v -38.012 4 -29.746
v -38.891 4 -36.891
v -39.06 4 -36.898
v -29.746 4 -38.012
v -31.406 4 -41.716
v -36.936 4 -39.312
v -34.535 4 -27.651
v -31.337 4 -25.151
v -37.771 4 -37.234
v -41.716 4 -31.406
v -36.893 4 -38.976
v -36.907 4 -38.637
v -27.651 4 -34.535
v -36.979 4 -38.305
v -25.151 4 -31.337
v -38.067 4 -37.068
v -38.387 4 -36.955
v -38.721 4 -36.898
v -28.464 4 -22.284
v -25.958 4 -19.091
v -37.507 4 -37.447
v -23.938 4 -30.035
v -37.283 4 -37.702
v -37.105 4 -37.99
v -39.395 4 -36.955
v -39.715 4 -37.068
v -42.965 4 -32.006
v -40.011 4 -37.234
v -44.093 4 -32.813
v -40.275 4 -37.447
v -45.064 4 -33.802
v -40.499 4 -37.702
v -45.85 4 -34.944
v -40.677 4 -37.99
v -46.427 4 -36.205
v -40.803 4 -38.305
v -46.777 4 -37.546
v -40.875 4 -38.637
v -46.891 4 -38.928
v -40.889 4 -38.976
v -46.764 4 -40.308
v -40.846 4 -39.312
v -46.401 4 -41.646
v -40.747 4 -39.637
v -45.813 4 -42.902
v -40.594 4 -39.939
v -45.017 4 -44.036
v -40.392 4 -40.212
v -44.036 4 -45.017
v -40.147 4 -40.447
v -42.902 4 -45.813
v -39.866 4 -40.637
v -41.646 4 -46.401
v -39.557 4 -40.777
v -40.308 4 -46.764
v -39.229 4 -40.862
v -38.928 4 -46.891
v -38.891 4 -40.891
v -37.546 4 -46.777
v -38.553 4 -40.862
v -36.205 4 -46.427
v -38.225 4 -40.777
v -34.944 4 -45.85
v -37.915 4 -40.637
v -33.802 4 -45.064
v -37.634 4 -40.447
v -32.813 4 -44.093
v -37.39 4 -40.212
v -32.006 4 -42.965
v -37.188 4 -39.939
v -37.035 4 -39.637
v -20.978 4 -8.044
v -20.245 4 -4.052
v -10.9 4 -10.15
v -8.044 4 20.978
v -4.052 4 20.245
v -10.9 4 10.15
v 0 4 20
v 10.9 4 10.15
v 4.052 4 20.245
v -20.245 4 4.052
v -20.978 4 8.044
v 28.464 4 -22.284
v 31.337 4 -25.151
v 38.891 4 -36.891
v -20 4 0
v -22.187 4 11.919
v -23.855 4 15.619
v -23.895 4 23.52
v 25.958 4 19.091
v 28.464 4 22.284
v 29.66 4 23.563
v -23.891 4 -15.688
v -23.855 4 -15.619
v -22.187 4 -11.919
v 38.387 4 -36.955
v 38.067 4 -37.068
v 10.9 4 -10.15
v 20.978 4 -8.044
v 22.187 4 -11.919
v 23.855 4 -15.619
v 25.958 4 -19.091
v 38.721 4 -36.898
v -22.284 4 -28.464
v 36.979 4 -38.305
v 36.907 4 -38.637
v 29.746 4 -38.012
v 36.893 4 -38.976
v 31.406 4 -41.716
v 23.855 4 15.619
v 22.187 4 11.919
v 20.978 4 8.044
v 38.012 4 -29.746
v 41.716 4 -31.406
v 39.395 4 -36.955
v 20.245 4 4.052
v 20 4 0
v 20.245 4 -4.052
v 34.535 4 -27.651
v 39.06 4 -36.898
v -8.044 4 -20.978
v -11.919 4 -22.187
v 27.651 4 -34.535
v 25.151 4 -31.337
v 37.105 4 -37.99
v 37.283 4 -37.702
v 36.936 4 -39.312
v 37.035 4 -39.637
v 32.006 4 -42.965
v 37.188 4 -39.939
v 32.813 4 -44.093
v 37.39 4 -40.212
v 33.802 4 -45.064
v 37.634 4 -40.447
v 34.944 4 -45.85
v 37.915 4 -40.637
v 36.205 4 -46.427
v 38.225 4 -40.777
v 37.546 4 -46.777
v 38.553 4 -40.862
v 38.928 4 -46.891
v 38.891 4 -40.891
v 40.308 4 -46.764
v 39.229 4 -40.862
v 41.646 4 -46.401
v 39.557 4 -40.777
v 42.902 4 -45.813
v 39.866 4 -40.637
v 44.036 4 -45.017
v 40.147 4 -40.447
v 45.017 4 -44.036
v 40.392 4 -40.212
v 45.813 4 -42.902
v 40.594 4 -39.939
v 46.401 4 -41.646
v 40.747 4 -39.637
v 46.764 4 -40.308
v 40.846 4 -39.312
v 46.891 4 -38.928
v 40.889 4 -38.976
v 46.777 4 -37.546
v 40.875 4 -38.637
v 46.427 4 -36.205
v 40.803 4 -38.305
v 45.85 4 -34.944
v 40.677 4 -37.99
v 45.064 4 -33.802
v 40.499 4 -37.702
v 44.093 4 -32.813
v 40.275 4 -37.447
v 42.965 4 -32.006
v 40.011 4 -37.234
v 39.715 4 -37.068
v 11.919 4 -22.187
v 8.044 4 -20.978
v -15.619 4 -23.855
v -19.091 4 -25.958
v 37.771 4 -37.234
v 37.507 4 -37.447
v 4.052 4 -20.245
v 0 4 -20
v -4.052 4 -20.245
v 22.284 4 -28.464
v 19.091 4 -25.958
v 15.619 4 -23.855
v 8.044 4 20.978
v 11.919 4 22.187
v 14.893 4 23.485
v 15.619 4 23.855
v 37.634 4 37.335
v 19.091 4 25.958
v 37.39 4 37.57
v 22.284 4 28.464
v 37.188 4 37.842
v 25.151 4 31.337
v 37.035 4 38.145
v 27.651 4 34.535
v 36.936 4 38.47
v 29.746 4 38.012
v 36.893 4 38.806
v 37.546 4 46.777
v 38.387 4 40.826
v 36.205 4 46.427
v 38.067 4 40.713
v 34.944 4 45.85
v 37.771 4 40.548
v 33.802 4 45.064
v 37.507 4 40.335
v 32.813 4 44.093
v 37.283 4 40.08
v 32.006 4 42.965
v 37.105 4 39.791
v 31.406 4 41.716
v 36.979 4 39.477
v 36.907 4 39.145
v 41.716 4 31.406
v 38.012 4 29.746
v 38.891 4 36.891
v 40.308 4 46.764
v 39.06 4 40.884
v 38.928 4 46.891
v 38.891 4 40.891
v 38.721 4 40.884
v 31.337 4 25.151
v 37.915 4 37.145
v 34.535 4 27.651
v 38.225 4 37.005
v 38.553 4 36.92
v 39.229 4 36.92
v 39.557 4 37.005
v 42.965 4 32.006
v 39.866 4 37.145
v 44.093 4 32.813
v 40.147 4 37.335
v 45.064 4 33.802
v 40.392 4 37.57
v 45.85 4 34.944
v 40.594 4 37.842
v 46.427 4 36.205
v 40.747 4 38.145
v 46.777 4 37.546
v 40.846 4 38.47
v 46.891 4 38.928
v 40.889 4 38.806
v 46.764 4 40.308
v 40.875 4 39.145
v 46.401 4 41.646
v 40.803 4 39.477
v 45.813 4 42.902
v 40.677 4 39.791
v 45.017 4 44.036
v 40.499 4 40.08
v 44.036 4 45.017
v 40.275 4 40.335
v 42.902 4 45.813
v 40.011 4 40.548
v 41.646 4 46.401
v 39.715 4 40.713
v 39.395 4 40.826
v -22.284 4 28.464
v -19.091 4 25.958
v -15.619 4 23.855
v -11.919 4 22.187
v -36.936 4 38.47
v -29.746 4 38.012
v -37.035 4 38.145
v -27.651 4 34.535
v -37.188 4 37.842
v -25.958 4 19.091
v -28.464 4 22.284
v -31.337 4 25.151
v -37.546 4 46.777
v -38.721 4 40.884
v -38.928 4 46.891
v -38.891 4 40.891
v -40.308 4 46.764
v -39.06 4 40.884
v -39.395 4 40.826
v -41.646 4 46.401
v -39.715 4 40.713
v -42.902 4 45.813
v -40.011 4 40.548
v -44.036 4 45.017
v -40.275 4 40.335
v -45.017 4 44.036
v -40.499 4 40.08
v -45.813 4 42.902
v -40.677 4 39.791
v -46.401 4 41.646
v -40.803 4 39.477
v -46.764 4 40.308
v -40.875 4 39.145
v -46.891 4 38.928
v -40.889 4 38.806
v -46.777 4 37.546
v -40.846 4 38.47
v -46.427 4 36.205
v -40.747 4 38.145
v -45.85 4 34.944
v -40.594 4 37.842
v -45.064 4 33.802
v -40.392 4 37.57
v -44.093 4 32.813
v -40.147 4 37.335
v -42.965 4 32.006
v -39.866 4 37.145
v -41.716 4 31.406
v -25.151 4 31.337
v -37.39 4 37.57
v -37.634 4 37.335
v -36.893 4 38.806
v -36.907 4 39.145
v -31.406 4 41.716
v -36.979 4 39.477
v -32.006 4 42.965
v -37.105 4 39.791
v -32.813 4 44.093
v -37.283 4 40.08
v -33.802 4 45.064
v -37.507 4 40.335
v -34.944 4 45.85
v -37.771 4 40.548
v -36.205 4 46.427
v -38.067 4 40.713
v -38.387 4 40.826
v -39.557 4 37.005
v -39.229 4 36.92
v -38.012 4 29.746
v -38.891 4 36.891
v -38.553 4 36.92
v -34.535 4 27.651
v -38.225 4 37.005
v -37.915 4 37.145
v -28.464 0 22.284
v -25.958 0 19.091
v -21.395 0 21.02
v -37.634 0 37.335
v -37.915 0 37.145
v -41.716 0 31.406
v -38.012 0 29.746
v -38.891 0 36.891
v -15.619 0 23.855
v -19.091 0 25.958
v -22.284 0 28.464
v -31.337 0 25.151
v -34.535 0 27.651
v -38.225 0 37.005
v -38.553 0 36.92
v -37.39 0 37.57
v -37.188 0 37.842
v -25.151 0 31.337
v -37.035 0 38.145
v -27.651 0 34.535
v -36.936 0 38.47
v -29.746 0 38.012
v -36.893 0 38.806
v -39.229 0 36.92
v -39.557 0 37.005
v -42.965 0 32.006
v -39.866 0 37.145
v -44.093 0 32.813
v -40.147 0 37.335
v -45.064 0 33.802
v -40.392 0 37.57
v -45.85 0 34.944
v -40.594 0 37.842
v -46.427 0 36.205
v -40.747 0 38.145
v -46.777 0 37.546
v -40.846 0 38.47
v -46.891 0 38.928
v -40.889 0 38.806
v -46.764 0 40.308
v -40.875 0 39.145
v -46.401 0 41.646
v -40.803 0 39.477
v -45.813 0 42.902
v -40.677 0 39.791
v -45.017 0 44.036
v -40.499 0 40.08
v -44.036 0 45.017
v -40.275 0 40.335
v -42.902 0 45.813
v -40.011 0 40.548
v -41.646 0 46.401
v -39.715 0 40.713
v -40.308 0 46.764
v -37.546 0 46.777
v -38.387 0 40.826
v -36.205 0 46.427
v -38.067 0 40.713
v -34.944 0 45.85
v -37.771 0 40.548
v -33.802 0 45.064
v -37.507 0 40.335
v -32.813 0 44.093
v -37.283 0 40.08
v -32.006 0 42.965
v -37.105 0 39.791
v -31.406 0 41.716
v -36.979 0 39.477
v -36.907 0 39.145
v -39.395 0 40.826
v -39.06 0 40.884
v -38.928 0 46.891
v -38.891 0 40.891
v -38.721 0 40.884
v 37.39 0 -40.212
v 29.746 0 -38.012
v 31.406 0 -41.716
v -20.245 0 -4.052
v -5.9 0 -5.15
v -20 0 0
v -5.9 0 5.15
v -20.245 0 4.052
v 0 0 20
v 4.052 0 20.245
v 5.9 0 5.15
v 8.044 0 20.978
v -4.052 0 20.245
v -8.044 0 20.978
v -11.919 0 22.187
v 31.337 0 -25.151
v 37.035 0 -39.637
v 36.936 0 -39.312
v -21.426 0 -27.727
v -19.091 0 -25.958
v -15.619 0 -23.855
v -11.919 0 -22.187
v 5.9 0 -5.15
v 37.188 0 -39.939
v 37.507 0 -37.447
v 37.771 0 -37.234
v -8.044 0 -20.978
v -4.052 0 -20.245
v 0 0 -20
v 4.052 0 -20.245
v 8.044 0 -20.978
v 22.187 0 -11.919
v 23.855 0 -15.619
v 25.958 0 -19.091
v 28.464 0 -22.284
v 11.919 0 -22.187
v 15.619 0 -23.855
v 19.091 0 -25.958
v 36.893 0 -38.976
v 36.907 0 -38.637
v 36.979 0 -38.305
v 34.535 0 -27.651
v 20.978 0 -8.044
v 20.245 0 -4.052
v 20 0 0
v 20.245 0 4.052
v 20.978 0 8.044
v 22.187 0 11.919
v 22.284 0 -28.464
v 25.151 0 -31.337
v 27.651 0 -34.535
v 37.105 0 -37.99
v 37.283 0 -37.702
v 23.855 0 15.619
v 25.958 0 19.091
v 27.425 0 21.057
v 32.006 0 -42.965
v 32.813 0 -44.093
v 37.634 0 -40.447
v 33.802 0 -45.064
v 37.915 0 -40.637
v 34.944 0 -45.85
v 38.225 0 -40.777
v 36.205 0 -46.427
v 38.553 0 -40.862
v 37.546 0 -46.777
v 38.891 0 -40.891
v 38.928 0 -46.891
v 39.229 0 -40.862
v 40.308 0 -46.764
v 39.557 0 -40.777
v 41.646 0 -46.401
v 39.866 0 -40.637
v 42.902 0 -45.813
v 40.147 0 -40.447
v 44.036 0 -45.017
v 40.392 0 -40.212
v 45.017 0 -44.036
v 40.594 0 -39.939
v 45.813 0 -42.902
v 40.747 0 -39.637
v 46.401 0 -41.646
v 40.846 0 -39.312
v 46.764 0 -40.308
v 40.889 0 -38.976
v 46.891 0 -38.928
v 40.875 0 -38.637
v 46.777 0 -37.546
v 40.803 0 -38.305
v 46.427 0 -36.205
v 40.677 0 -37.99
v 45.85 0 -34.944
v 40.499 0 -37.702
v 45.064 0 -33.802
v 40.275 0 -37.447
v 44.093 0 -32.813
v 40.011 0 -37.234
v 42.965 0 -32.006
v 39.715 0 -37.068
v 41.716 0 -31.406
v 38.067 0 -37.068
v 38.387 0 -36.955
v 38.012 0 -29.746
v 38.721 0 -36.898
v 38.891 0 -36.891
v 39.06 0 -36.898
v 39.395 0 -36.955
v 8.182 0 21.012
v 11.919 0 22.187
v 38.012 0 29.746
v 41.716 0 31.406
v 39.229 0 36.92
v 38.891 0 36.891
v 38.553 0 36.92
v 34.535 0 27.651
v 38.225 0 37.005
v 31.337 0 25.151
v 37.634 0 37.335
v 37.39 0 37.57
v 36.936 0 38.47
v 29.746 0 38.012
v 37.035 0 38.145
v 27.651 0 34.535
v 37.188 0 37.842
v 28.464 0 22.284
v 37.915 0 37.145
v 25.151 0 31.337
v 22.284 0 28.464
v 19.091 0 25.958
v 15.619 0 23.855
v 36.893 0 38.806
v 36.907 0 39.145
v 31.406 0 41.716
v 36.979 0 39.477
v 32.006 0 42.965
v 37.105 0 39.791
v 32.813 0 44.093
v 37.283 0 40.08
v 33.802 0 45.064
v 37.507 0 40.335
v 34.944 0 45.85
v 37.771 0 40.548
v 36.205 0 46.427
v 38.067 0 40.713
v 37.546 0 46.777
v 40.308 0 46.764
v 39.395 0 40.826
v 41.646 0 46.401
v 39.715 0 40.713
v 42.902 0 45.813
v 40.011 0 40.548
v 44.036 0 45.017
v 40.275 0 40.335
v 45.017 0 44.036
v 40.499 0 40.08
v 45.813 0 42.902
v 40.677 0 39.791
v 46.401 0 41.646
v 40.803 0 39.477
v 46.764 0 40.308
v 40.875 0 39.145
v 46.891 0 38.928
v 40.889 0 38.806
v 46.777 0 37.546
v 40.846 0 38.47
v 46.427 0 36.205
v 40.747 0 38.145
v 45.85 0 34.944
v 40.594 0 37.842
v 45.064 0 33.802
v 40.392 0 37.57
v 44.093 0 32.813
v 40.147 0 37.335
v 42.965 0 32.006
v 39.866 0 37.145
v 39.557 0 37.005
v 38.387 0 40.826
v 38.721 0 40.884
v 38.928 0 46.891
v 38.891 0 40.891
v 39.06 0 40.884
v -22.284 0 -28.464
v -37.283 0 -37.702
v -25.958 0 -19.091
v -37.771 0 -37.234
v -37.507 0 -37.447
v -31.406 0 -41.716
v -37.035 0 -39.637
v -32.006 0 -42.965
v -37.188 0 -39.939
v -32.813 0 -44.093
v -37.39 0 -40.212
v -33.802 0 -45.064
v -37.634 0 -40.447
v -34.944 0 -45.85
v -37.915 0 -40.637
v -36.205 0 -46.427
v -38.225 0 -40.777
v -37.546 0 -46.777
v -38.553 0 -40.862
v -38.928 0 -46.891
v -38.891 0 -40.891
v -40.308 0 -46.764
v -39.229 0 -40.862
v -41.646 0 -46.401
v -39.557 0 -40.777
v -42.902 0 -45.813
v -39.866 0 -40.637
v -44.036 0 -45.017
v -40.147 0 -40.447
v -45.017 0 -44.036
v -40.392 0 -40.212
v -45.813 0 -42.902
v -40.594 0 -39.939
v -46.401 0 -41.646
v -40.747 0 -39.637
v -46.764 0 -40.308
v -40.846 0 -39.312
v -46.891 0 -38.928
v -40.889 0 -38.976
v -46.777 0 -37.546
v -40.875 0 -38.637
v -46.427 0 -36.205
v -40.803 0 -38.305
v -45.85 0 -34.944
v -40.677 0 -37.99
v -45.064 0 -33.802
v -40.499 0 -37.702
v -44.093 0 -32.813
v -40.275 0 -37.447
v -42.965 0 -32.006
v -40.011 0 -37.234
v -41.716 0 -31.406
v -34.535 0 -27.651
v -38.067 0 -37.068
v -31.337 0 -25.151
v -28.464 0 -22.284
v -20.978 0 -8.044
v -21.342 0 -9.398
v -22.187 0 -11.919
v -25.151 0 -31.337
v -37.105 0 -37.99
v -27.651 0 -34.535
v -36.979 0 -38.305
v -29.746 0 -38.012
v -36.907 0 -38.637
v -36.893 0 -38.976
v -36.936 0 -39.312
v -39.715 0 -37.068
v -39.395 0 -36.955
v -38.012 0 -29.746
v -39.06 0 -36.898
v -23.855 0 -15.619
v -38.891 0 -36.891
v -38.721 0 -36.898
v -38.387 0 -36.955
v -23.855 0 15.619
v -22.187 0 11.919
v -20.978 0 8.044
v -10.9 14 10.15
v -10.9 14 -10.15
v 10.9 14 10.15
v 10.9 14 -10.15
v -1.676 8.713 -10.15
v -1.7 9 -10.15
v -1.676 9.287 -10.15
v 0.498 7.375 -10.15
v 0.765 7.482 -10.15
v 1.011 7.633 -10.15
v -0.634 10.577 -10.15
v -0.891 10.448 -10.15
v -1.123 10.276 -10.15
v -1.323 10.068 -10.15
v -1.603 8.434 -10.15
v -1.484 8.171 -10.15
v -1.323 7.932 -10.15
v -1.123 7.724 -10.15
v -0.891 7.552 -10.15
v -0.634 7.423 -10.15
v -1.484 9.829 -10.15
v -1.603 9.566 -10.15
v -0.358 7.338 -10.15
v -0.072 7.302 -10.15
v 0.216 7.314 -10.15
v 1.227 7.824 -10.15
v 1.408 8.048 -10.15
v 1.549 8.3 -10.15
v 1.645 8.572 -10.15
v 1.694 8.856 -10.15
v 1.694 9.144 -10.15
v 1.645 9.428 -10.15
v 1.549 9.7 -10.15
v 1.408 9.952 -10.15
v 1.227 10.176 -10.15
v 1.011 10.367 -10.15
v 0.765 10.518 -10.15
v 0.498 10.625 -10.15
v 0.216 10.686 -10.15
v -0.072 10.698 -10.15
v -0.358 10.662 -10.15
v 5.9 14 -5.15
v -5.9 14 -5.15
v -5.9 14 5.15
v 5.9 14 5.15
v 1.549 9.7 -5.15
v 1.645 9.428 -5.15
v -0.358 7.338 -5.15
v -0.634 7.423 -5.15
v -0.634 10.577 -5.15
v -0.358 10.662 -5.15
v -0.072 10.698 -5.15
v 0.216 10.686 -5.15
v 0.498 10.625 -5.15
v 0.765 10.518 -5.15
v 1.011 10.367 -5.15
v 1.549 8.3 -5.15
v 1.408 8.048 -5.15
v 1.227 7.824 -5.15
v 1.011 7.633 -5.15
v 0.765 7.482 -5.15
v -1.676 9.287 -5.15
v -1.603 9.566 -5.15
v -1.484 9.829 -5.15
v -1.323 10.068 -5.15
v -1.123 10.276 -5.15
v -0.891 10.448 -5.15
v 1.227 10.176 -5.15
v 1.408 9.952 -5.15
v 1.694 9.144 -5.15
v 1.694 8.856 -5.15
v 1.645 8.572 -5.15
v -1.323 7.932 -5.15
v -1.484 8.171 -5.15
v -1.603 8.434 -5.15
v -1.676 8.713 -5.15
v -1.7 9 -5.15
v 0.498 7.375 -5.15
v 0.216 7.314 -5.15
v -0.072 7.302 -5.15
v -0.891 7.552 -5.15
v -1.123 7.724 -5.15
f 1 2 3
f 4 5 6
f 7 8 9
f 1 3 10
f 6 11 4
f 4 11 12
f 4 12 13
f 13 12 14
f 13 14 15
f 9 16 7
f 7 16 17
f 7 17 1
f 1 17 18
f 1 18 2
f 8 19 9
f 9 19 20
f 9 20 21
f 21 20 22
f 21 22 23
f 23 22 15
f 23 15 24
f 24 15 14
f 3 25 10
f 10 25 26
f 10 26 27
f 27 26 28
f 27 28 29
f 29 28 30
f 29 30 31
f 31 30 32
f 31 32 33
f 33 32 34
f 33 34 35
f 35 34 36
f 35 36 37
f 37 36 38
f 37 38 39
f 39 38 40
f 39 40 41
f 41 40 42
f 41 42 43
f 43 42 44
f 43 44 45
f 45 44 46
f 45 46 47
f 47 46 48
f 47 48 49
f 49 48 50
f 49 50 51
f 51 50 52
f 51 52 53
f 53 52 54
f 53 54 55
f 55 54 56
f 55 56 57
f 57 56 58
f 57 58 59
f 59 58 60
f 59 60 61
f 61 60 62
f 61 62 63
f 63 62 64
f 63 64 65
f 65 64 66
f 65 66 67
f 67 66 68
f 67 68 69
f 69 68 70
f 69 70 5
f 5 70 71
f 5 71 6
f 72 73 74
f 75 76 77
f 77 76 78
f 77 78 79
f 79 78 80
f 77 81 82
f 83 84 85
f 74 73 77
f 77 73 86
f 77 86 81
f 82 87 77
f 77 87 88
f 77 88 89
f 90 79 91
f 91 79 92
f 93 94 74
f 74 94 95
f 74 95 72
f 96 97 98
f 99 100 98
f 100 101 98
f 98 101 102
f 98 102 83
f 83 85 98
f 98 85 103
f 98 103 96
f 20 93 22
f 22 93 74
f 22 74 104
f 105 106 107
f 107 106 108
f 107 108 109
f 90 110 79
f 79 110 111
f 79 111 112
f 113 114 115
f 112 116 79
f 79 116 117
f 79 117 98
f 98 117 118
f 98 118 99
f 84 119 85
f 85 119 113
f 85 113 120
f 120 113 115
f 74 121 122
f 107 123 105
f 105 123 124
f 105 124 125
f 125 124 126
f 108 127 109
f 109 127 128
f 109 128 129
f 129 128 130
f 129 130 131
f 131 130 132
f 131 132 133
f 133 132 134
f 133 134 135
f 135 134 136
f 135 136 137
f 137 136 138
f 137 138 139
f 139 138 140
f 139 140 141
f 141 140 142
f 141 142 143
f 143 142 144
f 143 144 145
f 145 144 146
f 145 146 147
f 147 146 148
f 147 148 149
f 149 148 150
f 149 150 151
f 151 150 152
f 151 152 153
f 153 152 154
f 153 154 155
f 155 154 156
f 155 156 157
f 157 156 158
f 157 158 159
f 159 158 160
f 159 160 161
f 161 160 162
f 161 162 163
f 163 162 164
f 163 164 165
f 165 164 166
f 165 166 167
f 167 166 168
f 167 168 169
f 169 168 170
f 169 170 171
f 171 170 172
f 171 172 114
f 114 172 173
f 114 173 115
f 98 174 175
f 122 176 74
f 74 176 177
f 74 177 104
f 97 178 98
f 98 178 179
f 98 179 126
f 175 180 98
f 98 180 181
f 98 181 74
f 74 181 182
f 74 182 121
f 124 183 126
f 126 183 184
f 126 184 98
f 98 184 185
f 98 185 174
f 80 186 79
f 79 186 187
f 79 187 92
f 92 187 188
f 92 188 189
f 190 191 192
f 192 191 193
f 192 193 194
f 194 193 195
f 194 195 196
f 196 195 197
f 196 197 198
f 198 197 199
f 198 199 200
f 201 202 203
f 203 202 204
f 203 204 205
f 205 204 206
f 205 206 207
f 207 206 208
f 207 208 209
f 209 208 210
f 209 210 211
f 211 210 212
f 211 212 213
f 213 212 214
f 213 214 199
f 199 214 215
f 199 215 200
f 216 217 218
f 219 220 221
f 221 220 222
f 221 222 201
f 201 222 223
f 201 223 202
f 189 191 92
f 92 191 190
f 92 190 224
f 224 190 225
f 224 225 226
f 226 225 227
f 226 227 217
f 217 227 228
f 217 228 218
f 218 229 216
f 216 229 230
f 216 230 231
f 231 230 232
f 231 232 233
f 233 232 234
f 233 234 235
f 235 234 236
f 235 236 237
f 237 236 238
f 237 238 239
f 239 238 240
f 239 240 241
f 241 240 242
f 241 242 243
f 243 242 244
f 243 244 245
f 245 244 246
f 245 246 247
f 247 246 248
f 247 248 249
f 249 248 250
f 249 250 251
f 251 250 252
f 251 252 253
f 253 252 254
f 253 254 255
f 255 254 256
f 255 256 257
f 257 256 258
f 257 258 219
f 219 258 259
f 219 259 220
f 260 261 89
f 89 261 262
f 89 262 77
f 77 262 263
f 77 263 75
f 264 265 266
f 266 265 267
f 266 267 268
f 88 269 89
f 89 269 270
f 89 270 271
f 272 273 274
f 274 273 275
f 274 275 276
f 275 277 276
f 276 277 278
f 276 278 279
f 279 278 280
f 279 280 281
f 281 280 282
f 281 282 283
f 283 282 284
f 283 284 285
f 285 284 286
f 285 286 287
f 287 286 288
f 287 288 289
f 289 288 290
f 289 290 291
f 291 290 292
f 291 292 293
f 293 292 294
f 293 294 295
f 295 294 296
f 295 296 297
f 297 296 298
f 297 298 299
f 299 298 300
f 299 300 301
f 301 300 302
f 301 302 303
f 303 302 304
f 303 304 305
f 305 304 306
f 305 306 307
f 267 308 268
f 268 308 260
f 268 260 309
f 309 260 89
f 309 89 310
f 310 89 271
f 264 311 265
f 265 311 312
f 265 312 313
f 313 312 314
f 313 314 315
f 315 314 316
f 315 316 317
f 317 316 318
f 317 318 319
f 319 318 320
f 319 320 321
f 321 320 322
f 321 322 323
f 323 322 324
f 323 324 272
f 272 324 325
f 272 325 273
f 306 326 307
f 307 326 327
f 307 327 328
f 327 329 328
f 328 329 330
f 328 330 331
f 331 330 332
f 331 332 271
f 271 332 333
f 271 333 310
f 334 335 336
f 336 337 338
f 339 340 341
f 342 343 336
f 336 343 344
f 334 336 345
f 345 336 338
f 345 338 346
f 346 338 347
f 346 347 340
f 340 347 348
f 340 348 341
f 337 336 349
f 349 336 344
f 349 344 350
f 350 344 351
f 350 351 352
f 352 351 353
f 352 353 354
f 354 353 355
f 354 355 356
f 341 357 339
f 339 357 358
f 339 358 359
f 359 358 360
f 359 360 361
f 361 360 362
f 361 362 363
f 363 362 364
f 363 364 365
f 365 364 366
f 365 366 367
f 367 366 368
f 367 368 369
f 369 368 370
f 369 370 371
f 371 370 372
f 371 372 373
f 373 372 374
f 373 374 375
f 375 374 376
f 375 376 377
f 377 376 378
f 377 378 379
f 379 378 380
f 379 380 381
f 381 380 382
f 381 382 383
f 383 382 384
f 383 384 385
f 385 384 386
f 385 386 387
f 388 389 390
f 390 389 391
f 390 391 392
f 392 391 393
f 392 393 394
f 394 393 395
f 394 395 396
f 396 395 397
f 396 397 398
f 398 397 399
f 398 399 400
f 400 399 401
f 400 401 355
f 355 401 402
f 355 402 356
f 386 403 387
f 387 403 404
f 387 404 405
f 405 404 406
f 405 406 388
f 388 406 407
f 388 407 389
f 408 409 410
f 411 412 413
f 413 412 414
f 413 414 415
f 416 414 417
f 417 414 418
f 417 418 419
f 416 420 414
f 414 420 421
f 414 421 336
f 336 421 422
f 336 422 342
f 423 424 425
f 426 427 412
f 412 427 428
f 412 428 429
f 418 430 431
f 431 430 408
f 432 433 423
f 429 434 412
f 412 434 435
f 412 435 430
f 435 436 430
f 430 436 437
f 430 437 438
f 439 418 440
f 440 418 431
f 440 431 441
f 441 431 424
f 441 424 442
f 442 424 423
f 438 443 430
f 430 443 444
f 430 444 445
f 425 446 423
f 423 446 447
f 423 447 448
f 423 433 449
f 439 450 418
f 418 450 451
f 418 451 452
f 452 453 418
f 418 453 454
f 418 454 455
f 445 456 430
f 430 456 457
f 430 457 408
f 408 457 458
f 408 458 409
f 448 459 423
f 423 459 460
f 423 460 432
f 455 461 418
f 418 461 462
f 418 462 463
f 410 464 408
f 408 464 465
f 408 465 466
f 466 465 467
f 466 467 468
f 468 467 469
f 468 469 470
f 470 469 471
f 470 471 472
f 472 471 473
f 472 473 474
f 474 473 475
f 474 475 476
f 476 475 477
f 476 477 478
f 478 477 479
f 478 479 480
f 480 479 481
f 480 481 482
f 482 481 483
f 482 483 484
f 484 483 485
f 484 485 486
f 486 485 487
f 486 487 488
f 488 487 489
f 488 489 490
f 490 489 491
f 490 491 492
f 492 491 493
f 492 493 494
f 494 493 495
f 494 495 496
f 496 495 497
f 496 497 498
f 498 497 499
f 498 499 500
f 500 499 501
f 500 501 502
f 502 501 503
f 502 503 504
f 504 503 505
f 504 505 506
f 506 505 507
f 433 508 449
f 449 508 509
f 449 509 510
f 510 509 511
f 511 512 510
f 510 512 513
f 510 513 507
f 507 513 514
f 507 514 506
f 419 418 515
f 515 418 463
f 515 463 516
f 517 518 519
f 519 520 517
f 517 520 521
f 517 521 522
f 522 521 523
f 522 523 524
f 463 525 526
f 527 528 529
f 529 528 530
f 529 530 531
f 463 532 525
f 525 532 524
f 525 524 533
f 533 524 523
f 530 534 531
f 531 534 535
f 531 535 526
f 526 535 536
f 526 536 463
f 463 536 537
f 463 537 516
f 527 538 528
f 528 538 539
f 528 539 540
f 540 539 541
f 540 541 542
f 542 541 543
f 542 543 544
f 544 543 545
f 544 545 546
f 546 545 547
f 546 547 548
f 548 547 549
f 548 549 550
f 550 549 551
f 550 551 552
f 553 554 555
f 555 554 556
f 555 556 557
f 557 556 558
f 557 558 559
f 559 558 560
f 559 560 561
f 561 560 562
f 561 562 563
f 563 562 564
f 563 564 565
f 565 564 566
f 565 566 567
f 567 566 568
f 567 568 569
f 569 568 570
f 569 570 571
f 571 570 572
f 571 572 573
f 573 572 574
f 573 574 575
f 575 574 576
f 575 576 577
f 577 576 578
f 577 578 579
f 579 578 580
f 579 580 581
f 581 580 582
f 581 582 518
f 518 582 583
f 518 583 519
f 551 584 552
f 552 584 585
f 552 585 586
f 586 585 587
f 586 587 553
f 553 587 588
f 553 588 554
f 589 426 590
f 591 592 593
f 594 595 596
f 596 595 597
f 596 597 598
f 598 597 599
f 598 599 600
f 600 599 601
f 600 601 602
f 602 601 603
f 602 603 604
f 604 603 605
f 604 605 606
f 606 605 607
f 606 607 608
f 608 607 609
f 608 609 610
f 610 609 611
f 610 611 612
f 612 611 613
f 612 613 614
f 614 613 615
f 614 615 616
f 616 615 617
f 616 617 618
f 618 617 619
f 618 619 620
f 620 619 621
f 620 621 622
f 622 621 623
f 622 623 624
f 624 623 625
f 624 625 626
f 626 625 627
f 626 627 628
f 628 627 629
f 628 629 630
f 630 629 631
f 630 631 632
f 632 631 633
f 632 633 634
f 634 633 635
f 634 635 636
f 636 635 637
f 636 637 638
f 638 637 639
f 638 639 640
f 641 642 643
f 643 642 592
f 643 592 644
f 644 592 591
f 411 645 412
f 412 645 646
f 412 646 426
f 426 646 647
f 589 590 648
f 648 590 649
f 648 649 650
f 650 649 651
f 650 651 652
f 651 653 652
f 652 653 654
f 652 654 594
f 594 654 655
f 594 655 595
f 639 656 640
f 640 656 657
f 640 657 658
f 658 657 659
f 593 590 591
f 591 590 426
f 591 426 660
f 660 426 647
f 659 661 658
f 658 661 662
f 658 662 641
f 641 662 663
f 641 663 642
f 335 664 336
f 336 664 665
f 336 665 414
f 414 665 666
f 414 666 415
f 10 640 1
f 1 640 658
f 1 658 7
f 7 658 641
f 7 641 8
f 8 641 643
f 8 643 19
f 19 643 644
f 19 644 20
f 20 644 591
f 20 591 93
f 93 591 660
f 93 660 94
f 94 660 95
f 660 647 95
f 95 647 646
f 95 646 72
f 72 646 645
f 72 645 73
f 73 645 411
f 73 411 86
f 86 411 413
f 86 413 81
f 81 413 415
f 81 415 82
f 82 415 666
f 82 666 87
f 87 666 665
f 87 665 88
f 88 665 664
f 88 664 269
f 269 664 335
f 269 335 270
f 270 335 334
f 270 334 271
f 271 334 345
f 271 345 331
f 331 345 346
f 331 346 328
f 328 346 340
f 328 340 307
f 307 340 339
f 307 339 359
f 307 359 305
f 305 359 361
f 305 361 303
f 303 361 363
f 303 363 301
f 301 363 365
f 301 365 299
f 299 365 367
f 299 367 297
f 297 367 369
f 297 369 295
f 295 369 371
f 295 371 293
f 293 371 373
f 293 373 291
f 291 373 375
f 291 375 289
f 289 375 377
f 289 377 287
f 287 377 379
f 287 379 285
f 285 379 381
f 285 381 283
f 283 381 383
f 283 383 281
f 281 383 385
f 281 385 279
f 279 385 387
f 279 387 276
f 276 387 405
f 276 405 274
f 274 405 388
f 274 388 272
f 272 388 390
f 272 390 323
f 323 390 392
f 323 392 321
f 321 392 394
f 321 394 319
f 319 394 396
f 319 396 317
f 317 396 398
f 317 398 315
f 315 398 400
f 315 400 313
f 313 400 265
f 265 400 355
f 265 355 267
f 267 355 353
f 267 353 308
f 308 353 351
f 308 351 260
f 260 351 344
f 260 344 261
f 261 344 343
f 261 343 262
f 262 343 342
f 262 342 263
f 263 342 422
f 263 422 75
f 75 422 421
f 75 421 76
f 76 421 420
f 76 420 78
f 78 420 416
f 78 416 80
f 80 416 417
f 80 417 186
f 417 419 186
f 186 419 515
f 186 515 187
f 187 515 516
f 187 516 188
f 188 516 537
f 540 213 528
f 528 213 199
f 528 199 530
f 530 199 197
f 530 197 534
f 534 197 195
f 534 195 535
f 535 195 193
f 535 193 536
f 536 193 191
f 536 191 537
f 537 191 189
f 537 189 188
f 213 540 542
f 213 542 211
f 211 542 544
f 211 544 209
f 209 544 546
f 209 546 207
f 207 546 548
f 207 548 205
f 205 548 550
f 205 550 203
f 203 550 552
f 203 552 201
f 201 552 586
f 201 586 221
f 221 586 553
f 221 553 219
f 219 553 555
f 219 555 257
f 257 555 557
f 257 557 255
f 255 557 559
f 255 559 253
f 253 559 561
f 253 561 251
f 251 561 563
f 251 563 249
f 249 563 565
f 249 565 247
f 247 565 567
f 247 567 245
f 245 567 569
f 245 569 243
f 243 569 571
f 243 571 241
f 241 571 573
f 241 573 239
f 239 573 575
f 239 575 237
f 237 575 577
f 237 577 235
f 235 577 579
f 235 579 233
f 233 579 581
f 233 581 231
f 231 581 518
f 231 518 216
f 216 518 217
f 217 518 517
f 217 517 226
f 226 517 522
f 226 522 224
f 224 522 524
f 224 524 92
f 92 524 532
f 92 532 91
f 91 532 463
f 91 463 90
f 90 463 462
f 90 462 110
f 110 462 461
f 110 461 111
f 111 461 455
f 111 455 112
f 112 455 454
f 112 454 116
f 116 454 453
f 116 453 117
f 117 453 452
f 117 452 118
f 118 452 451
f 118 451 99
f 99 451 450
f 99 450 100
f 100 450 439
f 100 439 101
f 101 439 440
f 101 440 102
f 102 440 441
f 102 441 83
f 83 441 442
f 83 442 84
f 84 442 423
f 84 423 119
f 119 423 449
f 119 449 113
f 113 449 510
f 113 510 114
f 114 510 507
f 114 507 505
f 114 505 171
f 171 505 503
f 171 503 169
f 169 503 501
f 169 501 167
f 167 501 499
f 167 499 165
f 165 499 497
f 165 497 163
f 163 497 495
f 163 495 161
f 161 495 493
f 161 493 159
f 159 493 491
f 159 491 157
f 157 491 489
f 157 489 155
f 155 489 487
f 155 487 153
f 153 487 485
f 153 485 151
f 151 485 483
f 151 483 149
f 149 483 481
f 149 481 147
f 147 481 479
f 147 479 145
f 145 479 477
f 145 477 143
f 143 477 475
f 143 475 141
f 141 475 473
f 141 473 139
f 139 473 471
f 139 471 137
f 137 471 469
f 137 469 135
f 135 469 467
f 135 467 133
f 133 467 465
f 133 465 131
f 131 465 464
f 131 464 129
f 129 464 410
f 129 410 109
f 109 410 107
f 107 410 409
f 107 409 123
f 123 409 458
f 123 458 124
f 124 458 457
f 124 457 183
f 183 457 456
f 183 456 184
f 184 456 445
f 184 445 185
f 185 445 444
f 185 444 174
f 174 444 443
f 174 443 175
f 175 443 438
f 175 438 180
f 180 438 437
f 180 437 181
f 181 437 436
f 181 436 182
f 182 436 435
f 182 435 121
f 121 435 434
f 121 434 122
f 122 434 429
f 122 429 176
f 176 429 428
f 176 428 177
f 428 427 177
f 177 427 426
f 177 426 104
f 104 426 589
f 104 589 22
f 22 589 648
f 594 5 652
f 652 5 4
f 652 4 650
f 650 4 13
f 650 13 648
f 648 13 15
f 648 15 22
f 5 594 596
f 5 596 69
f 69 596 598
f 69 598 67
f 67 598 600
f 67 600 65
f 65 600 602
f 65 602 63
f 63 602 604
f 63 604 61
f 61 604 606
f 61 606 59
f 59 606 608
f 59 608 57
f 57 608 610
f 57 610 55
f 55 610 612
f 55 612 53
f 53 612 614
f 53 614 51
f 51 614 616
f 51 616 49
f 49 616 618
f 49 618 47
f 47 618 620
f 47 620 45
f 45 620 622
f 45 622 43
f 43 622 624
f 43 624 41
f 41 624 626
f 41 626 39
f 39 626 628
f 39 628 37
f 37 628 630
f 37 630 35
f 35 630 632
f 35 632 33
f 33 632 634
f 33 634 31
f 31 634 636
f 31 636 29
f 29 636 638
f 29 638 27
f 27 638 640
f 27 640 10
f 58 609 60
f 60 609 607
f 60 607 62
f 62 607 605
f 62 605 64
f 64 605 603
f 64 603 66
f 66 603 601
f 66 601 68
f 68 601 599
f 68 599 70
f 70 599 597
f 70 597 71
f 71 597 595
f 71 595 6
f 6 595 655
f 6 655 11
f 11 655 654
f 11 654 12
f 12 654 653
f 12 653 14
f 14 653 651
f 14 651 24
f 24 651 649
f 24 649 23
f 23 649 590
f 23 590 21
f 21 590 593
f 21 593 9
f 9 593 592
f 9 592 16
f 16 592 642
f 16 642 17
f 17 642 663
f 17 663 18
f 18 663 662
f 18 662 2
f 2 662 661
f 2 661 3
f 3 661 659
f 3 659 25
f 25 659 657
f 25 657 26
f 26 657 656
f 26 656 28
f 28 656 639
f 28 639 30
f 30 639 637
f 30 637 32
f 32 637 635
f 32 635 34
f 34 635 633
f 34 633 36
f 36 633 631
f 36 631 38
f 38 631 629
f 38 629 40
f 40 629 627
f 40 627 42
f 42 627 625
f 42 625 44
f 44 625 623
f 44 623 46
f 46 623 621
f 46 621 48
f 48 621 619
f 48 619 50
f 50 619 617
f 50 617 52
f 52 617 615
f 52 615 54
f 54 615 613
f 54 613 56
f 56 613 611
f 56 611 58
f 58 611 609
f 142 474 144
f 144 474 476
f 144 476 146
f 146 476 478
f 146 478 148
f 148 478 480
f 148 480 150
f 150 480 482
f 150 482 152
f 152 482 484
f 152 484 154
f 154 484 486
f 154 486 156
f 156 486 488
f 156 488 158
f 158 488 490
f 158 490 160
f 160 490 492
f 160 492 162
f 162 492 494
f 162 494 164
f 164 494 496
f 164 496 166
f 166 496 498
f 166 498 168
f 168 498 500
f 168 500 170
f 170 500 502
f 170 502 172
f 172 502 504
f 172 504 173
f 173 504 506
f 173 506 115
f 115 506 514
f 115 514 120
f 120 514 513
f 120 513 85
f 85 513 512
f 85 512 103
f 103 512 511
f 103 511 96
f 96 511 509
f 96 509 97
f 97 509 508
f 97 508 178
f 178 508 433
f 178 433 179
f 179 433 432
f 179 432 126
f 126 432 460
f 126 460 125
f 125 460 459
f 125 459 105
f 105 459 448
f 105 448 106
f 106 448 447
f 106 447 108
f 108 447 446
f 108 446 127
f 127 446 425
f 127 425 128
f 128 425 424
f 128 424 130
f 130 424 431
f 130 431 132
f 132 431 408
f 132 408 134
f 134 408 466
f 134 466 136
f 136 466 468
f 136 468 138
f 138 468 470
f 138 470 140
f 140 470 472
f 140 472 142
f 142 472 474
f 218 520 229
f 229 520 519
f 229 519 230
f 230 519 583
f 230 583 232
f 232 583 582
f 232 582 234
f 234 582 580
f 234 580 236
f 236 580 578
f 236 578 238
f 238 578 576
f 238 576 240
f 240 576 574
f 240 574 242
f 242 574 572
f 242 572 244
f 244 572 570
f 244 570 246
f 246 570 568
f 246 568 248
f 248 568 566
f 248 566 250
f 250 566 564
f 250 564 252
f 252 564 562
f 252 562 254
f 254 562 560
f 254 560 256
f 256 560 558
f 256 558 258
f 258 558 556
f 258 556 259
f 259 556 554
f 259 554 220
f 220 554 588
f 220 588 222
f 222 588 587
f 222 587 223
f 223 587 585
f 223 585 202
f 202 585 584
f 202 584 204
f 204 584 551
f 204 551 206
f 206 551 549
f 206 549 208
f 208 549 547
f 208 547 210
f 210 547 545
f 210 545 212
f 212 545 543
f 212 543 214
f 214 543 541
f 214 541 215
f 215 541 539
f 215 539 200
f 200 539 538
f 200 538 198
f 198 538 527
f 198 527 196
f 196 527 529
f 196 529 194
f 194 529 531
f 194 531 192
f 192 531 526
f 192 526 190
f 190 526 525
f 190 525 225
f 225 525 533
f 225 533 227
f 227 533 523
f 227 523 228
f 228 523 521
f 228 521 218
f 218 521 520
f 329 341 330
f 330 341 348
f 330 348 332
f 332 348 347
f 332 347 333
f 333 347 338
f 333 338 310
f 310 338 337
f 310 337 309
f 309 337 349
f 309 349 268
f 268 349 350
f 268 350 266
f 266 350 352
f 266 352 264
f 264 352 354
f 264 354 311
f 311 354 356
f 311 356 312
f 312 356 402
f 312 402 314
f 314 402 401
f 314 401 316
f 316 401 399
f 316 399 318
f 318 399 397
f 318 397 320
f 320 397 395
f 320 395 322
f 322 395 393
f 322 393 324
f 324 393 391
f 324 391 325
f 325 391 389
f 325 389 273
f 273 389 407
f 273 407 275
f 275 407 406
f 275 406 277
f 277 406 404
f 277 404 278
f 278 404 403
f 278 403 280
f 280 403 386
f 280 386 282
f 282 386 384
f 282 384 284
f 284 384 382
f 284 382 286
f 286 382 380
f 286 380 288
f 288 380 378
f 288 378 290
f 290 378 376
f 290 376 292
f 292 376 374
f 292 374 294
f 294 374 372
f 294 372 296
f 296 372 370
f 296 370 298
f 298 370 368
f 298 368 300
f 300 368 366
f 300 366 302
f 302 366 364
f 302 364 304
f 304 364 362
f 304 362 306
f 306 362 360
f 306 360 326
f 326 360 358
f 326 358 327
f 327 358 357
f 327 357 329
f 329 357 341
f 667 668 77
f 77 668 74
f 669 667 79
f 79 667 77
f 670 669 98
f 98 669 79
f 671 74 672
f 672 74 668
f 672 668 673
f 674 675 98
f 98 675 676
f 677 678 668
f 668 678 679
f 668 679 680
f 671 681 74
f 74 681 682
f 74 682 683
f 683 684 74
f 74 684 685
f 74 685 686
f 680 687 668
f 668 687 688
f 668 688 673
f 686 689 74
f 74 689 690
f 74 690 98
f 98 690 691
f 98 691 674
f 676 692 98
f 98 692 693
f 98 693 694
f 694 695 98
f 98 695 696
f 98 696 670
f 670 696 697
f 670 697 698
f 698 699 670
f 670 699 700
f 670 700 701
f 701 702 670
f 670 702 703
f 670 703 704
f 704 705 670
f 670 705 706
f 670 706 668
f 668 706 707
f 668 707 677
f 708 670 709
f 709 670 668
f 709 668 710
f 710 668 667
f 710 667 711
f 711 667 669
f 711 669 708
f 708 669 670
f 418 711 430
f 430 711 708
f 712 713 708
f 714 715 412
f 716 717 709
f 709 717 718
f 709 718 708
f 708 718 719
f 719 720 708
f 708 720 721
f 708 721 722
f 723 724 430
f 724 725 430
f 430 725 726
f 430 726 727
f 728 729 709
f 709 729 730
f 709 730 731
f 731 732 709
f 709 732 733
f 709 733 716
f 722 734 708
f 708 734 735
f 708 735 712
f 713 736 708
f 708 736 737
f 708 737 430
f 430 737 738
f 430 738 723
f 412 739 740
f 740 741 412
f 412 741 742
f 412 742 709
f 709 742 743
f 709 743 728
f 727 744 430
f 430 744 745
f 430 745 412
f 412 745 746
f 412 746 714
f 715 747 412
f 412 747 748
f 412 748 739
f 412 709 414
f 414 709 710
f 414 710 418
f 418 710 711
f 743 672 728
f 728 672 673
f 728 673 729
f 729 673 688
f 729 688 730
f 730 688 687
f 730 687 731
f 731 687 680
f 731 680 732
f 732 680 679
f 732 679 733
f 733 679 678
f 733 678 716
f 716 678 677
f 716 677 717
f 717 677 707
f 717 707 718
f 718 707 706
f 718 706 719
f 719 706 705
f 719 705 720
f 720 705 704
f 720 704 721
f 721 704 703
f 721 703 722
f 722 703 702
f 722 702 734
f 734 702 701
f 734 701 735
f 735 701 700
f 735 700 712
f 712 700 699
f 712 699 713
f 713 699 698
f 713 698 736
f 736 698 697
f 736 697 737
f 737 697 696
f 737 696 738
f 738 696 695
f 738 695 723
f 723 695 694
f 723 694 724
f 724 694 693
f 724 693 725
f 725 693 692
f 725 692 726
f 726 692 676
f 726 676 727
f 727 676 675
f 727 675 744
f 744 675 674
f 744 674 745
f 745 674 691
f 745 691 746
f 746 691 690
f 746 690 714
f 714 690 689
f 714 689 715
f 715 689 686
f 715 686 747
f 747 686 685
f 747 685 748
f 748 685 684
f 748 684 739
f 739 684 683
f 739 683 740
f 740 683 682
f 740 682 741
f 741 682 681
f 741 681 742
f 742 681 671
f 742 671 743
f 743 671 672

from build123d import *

# Parameters (mm, degrees)
SKETCH1_R                = 2
BOSS_EXTRUDE1_DEPTH      = 4
SKETCH7_W                = 21.8
SKETCH7_H                = 20.3
SKETCH7_W_2              = 11.8
SKETCH7_H_2              = 10.3
BOSS_EXTRUDE2_DEPTH      = 10
M3_CLEARANCE_HOLE1_D     = 3.4
M3_CLEARANCE_HOLE1_DEPTH = 5
SKETCH7_2_W              = 11.8
SKETCH7_2_H              = 10.3
CUT_EXTRUDE1_DEPTH       = 10


with BuildPart() as part:
    # Sketch1 → Boss-Extrude1 (new body)
    with BuildSketch(Plane(origin=(0, 0, 0), x_dir=(1, 0, 0), z_dir=(0, 1, 0))):
        with BuildLine():
            ThreePointArc((-31.406166481, 41.715615227), (-44.547727215, 44.547727215), (-41.715615227, 31.406166481))
            ThreePointArc((-41.715615227, 31.406166481), (-20, 0), (-41.715615227, -31.406166481))
            ThreePointArc((-41.715615227, -31.406166481), (-44.547727215, -44.547727215), (-31.406166481, -41.715615227))
            ThreePointArc((-31.406166481, -41.715615227), (0, -20), (31.406166481, -41.715615227))
            ThreePointArc((31.406166481, -41.715615227), (44.547727215, -44.547727215), (41.715615227, -31.406166481))
            ThreePointArc((41.715615227, -31.406166481), (20, 0), (41.715615227, 31.406166481))
            ThreePointArc((41.715615227, 31.406166481), (44.547727215, 44.547727215), (31.406166481, 41.715615227))
            ThreePointArc((31.406166481, 41.715615227), (0, 20), (-31.406166481, 41.715615227))
        make_face()
        with Locations(Location((-38.890872965, 38.890872965, 0), (0, 0, 270))):
            Circle(SKETCH1_R, mode=Mode.SUBTRACT)
        with Locations(Location((38.890872965, 38.890872965, 0), (0, 0, 270))):
            Circle(SKETCH1_R, mode=Mode.SUBTRACT)
        with Locations(Location((38.890872965, -38.890872965, 0), (0, 0, 270))):
            Circle(SKETCH1_R, mode=Mode.SUBTRACT)
        with Locations(Location((-38.890872965, -38.890872965, 0), (0, 0, 270))):
            Circle(SKETCH1_R, mode=Mode.SUBTRACT)
    extrude(amount=BOSS_EXTRUDE1_DEPTH)

    # Sketch7 → Boss-Extrude2 (add)
    with BuildSketch(Plane.XZ.offset(-4)):
        Rectangle(SKETCH7_W, SKETCH7_H)
        Rectangle(SKETCH7_W_2, SKETCH7_H_2, mode=Mode.SUBTRACT)
    extrude(amount=-BOSS_EXTRUDE2_DEPTH)

    # M3 Clearance Hole1
    with Locations(Plane(origin=(0, 9, -10.15), x_dir=(-1, 0, 0), z_dir=(0, 0, -1))):
        with Locations((0, 0)):
            Hole(M3_CLEARANCE_HOLE1_D / 2, depth=M3_CLEARANCE_HOLE1_DEPTH)

    # Sketch7<2> → Cut-Extrude1 (cut)
    with BuildSketch(Plane.XZ.offset(-4)):
        Rectangle(SKETCH7_2_W, SKETCH7_2_H)
    extrude(amount=CUT_EXTRUDE1_DEPTH, mode=Mode.SUBTRACT)


solid = part.part
